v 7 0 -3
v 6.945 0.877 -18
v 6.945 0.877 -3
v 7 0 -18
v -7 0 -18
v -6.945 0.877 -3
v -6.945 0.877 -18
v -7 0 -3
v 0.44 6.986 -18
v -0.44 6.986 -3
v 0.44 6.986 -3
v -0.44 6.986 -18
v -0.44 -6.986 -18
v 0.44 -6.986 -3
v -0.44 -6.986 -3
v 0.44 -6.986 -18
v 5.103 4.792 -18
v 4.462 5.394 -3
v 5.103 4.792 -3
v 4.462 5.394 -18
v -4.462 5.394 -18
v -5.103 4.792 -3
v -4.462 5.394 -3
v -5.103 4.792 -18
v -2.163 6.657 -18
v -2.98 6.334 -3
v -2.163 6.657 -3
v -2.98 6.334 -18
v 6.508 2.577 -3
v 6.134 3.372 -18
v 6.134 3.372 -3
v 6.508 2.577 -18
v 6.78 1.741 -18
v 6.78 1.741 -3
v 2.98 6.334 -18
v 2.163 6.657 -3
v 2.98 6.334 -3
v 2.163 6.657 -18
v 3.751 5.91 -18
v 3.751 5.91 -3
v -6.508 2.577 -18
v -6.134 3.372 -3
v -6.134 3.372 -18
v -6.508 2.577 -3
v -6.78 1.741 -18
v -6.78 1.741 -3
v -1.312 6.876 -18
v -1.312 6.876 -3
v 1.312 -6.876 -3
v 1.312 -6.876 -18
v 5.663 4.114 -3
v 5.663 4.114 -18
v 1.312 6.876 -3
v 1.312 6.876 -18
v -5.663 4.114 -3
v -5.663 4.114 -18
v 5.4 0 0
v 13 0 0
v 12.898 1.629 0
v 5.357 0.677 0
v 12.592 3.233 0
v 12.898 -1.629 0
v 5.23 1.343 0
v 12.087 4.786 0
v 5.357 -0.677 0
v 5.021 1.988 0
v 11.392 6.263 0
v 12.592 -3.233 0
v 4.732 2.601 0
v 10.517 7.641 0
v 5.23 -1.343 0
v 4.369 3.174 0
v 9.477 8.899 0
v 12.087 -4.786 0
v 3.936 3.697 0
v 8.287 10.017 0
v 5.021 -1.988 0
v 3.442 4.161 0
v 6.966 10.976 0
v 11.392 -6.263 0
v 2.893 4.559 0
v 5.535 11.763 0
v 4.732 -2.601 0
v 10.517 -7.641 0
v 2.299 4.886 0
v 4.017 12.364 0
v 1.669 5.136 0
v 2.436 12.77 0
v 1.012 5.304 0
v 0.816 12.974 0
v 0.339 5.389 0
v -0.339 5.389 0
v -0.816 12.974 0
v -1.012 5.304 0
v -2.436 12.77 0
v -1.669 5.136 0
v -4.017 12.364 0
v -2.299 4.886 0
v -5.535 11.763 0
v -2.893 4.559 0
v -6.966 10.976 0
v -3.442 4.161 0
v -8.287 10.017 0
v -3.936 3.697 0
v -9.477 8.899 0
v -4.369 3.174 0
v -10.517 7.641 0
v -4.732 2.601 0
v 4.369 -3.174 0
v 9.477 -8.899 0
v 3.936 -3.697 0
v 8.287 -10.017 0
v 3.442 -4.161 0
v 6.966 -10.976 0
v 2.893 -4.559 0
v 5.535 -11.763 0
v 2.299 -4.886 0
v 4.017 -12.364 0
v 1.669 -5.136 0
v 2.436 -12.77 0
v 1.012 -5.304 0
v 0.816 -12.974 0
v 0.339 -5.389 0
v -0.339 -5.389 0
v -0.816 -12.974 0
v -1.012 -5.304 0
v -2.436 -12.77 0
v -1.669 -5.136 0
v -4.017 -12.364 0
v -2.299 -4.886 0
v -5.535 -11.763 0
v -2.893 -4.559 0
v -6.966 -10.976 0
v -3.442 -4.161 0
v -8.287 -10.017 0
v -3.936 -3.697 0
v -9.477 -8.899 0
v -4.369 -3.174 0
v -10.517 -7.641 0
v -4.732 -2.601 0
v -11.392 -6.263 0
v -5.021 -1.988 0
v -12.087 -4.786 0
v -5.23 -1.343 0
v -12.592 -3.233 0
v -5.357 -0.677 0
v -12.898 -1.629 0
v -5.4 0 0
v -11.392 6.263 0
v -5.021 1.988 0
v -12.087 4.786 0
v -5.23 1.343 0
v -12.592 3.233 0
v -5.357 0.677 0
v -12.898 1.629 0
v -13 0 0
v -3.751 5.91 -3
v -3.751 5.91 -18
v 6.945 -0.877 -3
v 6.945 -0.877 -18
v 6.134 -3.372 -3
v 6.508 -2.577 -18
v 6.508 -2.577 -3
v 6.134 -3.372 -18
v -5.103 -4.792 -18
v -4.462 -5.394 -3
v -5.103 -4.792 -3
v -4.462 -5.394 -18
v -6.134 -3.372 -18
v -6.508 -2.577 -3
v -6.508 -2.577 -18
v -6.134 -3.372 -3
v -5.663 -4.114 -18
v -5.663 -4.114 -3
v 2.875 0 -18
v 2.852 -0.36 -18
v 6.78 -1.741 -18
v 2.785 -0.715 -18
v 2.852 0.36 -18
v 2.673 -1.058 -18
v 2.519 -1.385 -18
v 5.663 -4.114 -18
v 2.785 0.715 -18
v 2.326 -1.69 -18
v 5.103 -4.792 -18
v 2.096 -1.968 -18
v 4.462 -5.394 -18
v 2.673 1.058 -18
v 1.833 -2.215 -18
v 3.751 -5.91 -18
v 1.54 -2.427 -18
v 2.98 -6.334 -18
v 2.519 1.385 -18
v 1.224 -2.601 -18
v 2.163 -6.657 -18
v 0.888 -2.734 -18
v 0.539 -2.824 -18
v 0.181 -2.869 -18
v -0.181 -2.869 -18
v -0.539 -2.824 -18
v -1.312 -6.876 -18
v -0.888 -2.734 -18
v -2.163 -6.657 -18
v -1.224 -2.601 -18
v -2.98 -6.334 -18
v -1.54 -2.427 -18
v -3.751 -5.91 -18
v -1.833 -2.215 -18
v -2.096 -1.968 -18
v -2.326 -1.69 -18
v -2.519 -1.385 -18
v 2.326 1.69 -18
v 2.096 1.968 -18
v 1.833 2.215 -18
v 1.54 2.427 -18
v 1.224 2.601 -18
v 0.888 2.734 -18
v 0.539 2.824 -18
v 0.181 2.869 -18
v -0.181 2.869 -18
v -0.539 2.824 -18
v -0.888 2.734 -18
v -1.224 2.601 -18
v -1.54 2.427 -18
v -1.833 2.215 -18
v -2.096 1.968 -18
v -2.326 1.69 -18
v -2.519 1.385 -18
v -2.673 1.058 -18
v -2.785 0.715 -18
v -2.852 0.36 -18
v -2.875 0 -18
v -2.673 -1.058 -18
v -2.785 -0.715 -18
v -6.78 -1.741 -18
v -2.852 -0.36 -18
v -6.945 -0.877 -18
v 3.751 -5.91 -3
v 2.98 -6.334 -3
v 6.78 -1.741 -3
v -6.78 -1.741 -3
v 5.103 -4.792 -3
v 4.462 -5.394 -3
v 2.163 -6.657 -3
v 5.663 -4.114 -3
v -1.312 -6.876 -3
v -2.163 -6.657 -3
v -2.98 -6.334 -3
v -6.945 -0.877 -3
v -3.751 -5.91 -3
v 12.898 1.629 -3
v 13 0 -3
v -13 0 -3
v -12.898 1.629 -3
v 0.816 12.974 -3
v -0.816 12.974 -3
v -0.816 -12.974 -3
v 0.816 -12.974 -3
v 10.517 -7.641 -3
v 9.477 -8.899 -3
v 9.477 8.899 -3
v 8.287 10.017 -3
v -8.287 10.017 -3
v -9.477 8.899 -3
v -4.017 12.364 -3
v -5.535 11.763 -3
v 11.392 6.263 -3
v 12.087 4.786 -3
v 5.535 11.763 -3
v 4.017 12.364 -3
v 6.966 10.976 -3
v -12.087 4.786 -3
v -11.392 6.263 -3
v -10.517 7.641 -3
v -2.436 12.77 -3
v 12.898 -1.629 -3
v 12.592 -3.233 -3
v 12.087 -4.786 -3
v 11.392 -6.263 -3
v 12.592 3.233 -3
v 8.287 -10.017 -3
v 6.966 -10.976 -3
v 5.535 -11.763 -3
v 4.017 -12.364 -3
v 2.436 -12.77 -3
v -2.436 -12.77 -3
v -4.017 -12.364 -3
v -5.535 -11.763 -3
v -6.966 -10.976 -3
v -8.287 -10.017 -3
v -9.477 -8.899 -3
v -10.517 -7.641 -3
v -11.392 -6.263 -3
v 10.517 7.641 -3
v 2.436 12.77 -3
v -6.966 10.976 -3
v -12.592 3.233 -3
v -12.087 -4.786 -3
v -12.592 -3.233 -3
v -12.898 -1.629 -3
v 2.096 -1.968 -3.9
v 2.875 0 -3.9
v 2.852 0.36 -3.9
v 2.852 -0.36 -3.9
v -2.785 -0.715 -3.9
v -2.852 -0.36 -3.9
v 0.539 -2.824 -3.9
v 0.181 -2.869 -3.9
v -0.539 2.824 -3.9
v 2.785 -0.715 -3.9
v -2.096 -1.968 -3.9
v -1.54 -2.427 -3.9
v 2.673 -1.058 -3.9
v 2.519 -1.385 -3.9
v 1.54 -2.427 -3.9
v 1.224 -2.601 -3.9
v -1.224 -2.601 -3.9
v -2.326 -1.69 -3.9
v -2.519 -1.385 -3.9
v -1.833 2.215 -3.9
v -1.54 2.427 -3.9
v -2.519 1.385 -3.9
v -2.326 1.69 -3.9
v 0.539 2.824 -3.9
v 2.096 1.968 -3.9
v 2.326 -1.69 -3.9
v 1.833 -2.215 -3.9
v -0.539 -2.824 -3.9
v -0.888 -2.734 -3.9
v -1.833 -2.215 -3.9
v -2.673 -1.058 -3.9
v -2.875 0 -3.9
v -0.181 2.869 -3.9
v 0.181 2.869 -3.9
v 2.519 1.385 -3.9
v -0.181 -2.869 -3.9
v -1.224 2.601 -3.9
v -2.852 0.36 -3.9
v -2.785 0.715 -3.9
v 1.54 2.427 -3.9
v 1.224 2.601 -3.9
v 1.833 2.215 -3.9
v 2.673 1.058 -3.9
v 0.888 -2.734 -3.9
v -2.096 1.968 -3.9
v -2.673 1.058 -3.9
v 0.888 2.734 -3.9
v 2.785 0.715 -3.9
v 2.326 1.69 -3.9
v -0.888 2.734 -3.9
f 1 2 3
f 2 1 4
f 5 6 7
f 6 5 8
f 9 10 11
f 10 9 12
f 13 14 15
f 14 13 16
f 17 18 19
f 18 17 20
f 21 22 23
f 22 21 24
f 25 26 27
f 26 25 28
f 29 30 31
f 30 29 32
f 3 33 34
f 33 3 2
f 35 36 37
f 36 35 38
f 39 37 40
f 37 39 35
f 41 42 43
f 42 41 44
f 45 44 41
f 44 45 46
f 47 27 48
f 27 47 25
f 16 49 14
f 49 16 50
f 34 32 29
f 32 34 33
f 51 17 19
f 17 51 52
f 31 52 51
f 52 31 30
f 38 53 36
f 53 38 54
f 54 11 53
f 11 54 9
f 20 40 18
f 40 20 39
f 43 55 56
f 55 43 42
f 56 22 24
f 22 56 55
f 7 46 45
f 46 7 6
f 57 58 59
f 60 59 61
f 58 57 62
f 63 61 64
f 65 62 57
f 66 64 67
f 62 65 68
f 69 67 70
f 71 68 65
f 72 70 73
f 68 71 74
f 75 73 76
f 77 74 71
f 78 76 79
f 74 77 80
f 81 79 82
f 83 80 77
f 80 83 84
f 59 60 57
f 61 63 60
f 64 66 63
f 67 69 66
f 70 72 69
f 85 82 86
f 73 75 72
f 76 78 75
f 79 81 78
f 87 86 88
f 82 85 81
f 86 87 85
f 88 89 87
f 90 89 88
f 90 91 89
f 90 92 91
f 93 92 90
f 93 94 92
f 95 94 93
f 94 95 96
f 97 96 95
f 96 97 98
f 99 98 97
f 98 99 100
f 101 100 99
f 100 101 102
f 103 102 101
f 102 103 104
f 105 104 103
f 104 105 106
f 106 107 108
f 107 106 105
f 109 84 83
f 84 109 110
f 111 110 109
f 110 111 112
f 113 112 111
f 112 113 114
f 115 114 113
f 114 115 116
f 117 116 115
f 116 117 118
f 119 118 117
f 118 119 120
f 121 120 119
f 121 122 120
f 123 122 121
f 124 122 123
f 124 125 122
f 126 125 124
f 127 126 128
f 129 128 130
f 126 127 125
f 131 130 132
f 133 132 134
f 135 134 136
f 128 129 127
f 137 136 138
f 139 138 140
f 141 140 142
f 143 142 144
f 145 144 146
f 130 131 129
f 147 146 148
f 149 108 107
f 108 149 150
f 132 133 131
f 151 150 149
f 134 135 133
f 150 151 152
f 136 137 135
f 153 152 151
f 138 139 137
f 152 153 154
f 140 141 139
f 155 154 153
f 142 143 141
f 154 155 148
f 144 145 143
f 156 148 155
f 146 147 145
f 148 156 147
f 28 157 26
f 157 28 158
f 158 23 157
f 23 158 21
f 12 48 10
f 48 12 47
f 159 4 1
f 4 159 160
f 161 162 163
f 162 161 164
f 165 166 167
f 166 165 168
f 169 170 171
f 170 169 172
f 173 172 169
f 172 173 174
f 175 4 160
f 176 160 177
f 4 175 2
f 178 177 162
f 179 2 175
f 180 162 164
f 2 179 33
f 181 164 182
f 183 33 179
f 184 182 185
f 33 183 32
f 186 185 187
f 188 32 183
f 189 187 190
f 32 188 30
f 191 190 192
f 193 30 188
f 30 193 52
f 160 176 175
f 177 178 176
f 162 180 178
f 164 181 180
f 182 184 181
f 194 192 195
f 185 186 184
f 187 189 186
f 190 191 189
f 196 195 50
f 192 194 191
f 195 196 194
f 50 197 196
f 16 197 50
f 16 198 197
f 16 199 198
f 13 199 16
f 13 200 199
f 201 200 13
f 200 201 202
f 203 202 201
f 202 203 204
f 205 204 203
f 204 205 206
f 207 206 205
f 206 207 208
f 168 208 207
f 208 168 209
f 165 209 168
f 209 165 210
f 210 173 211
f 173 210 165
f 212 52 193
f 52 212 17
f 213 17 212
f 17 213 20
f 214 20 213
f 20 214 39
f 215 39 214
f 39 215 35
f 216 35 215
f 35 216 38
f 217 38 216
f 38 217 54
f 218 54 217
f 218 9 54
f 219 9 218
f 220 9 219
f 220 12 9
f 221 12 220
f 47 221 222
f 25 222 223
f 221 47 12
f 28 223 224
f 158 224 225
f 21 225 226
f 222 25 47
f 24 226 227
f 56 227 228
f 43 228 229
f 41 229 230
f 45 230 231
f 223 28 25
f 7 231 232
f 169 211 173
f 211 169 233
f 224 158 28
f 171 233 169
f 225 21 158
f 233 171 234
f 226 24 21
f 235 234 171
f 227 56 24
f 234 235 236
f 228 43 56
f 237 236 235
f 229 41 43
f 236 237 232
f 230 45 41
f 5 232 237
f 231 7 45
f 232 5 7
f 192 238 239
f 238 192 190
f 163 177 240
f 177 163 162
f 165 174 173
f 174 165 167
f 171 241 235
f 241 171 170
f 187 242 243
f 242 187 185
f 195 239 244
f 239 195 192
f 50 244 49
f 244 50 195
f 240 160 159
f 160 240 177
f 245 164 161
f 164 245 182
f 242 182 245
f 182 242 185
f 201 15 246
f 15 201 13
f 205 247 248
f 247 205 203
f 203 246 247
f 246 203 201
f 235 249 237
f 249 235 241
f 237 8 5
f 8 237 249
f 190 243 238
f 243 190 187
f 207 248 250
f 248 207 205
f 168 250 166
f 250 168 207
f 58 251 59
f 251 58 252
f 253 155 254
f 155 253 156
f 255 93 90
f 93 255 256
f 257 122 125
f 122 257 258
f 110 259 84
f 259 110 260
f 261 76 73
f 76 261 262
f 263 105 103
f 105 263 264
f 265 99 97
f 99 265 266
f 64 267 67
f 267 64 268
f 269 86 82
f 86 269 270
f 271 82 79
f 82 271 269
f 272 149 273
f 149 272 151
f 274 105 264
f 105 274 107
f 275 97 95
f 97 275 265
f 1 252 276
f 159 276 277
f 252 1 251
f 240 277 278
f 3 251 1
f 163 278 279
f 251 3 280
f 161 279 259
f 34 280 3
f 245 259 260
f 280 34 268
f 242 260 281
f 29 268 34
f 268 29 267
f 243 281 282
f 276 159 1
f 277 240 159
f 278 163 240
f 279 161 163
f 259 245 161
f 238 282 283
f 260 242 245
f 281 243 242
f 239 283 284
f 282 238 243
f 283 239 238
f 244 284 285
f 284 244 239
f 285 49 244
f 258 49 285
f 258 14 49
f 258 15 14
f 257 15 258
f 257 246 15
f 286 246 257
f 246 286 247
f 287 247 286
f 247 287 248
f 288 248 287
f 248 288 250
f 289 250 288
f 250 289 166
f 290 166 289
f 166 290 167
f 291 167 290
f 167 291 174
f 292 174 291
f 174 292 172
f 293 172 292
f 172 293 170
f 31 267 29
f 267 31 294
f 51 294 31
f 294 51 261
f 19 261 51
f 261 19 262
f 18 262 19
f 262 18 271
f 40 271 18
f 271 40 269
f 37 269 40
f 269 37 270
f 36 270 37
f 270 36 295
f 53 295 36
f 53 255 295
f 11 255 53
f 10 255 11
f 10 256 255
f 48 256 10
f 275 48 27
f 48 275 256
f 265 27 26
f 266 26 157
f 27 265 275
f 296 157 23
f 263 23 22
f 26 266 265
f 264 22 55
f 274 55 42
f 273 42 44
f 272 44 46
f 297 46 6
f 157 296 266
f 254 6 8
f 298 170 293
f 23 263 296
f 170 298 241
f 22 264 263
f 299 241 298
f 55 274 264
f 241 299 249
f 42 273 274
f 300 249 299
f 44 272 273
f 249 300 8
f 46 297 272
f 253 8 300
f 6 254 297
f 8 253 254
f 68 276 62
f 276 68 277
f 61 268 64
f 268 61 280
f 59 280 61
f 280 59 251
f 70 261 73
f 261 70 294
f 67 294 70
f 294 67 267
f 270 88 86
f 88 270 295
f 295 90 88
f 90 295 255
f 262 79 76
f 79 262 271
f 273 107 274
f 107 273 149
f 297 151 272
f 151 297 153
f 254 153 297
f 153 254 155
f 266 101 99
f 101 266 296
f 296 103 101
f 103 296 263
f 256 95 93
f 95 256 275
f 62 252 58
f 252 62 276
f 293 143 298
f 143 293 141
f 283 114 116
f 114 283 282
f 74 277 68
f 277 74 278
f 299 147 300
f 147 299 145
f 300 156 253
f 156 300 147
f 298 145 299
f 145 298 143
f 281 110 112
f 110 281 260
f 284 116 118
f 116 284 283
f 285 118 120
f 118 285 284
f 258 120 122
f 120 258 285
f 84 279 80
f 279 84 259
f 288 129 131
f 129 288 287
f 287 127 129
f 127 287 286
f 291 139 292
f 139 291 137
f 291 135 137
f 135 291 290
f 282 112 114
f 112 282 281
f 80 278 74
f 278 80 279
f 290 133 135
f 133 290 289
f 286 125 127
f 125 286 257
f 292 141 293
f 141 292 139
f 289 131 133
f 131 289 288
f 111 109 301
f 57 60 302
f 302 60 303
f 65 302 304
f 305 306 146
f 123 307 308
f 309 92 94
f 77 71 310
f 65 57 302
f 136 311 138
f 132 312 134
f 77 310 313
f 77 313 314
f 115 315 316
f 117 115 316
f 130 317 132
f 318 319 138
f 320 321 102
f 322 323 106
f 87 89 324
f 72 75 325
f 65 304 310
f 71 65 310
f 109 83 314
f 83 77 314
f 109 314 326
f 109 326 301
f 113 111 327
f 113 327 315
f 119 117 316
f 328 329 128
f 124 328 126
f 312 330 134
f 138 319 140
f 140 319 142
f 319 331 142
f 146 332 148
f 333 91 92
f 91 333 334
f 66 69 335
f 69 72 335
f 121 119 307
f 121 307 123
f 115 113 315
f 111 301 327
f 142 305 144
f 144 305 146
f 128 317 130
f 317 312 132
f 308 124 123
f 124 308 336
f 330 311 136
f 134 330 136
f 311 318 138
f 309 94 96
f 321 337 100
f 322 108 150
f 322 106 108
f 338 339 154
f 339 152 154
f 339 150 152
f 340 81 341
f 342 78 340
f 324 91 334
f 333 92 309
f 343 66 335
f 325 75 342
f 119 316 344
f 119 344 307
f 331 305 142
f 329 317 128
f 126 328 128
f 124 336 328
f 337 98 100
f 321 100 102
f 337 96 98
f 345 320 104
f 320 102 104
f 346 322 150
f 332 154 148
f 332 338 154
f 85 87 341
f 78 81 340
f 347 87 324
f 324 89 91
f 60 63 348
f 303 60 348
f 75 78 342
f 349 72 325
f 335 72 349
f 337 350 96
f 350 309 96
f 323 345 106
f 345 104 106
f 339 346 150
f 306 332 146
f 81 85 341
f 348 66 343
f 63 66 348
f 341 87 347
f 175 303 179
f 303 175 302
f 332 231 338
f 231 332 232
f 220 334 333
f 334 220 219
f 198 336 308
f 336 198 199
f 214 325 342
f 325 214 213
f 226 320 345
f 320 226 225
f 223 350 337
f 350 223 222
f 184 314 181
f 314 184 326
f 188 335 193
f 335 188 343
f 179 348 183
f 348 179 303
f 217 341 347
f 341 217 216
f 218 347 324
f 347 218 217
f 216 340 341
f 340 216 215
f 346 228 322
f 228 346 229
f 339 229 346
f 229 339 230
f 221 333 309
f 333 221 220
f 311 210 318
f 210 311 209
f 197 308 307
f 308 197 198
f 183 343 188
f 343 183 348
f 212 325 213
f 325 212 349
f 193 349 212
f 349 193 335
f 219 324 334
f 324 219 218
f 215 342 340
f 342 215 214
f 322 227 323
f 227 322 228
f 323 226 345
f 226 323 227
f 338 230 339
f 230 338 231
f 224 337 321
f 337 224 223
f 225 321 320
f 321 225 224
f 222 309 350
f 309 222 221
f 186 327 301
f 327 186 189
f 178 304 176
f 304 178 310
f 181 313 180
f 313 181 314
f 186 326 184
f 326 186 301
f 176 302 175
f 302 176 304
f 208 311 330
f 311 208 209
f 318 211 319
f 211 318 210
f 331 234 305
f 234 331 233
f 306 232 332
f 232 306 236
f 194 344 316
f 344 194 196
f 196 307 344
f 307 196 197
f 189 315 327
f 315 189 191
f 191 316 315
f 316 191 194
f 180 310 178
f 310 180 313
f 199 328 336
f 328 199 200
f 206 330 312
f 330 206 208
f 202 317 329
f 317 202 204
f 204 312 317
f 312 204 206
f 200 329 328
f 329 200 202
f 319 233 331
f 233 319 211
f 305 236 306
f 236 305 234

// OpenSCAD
$fn = 50;


difference() {
	union() {
		translate(v = [0, 0, -18.0000000000]) {
			cylinder(h = 18, r = 7.0000000000);
		}
		translate(v = [0, 0, -3.0000000000]) {
			cylinder(h = 3, r = 13.0000000000);
		}
	}
	union() {
		translate(v = [0, 0, 0]) {
			rotate(a = [0, 0, 0]) {
				difference() {
					union() {
						#translate(v = [0, 0, -18.0000000000]) {
							cylinder(h = 18, r = 2.6000000000);
						}
						#translate(v = [0, 0, -3.9000000000]) {
							cylinder(h = 3.9000000000, r1 = 2.8750000000, r2 = 5.4000000000);
						}
						#translate(v = [0, 0, -18.0000000000]) {
							cylinder(h = 18, r = 2.8750000000);
						}
						#translate(v = [0, 0, -18.0000000000]) {
							cylinder(h = 18, r = 2.6000000000);
						}
					}
					union();
				}
			}
		}
	}
}
